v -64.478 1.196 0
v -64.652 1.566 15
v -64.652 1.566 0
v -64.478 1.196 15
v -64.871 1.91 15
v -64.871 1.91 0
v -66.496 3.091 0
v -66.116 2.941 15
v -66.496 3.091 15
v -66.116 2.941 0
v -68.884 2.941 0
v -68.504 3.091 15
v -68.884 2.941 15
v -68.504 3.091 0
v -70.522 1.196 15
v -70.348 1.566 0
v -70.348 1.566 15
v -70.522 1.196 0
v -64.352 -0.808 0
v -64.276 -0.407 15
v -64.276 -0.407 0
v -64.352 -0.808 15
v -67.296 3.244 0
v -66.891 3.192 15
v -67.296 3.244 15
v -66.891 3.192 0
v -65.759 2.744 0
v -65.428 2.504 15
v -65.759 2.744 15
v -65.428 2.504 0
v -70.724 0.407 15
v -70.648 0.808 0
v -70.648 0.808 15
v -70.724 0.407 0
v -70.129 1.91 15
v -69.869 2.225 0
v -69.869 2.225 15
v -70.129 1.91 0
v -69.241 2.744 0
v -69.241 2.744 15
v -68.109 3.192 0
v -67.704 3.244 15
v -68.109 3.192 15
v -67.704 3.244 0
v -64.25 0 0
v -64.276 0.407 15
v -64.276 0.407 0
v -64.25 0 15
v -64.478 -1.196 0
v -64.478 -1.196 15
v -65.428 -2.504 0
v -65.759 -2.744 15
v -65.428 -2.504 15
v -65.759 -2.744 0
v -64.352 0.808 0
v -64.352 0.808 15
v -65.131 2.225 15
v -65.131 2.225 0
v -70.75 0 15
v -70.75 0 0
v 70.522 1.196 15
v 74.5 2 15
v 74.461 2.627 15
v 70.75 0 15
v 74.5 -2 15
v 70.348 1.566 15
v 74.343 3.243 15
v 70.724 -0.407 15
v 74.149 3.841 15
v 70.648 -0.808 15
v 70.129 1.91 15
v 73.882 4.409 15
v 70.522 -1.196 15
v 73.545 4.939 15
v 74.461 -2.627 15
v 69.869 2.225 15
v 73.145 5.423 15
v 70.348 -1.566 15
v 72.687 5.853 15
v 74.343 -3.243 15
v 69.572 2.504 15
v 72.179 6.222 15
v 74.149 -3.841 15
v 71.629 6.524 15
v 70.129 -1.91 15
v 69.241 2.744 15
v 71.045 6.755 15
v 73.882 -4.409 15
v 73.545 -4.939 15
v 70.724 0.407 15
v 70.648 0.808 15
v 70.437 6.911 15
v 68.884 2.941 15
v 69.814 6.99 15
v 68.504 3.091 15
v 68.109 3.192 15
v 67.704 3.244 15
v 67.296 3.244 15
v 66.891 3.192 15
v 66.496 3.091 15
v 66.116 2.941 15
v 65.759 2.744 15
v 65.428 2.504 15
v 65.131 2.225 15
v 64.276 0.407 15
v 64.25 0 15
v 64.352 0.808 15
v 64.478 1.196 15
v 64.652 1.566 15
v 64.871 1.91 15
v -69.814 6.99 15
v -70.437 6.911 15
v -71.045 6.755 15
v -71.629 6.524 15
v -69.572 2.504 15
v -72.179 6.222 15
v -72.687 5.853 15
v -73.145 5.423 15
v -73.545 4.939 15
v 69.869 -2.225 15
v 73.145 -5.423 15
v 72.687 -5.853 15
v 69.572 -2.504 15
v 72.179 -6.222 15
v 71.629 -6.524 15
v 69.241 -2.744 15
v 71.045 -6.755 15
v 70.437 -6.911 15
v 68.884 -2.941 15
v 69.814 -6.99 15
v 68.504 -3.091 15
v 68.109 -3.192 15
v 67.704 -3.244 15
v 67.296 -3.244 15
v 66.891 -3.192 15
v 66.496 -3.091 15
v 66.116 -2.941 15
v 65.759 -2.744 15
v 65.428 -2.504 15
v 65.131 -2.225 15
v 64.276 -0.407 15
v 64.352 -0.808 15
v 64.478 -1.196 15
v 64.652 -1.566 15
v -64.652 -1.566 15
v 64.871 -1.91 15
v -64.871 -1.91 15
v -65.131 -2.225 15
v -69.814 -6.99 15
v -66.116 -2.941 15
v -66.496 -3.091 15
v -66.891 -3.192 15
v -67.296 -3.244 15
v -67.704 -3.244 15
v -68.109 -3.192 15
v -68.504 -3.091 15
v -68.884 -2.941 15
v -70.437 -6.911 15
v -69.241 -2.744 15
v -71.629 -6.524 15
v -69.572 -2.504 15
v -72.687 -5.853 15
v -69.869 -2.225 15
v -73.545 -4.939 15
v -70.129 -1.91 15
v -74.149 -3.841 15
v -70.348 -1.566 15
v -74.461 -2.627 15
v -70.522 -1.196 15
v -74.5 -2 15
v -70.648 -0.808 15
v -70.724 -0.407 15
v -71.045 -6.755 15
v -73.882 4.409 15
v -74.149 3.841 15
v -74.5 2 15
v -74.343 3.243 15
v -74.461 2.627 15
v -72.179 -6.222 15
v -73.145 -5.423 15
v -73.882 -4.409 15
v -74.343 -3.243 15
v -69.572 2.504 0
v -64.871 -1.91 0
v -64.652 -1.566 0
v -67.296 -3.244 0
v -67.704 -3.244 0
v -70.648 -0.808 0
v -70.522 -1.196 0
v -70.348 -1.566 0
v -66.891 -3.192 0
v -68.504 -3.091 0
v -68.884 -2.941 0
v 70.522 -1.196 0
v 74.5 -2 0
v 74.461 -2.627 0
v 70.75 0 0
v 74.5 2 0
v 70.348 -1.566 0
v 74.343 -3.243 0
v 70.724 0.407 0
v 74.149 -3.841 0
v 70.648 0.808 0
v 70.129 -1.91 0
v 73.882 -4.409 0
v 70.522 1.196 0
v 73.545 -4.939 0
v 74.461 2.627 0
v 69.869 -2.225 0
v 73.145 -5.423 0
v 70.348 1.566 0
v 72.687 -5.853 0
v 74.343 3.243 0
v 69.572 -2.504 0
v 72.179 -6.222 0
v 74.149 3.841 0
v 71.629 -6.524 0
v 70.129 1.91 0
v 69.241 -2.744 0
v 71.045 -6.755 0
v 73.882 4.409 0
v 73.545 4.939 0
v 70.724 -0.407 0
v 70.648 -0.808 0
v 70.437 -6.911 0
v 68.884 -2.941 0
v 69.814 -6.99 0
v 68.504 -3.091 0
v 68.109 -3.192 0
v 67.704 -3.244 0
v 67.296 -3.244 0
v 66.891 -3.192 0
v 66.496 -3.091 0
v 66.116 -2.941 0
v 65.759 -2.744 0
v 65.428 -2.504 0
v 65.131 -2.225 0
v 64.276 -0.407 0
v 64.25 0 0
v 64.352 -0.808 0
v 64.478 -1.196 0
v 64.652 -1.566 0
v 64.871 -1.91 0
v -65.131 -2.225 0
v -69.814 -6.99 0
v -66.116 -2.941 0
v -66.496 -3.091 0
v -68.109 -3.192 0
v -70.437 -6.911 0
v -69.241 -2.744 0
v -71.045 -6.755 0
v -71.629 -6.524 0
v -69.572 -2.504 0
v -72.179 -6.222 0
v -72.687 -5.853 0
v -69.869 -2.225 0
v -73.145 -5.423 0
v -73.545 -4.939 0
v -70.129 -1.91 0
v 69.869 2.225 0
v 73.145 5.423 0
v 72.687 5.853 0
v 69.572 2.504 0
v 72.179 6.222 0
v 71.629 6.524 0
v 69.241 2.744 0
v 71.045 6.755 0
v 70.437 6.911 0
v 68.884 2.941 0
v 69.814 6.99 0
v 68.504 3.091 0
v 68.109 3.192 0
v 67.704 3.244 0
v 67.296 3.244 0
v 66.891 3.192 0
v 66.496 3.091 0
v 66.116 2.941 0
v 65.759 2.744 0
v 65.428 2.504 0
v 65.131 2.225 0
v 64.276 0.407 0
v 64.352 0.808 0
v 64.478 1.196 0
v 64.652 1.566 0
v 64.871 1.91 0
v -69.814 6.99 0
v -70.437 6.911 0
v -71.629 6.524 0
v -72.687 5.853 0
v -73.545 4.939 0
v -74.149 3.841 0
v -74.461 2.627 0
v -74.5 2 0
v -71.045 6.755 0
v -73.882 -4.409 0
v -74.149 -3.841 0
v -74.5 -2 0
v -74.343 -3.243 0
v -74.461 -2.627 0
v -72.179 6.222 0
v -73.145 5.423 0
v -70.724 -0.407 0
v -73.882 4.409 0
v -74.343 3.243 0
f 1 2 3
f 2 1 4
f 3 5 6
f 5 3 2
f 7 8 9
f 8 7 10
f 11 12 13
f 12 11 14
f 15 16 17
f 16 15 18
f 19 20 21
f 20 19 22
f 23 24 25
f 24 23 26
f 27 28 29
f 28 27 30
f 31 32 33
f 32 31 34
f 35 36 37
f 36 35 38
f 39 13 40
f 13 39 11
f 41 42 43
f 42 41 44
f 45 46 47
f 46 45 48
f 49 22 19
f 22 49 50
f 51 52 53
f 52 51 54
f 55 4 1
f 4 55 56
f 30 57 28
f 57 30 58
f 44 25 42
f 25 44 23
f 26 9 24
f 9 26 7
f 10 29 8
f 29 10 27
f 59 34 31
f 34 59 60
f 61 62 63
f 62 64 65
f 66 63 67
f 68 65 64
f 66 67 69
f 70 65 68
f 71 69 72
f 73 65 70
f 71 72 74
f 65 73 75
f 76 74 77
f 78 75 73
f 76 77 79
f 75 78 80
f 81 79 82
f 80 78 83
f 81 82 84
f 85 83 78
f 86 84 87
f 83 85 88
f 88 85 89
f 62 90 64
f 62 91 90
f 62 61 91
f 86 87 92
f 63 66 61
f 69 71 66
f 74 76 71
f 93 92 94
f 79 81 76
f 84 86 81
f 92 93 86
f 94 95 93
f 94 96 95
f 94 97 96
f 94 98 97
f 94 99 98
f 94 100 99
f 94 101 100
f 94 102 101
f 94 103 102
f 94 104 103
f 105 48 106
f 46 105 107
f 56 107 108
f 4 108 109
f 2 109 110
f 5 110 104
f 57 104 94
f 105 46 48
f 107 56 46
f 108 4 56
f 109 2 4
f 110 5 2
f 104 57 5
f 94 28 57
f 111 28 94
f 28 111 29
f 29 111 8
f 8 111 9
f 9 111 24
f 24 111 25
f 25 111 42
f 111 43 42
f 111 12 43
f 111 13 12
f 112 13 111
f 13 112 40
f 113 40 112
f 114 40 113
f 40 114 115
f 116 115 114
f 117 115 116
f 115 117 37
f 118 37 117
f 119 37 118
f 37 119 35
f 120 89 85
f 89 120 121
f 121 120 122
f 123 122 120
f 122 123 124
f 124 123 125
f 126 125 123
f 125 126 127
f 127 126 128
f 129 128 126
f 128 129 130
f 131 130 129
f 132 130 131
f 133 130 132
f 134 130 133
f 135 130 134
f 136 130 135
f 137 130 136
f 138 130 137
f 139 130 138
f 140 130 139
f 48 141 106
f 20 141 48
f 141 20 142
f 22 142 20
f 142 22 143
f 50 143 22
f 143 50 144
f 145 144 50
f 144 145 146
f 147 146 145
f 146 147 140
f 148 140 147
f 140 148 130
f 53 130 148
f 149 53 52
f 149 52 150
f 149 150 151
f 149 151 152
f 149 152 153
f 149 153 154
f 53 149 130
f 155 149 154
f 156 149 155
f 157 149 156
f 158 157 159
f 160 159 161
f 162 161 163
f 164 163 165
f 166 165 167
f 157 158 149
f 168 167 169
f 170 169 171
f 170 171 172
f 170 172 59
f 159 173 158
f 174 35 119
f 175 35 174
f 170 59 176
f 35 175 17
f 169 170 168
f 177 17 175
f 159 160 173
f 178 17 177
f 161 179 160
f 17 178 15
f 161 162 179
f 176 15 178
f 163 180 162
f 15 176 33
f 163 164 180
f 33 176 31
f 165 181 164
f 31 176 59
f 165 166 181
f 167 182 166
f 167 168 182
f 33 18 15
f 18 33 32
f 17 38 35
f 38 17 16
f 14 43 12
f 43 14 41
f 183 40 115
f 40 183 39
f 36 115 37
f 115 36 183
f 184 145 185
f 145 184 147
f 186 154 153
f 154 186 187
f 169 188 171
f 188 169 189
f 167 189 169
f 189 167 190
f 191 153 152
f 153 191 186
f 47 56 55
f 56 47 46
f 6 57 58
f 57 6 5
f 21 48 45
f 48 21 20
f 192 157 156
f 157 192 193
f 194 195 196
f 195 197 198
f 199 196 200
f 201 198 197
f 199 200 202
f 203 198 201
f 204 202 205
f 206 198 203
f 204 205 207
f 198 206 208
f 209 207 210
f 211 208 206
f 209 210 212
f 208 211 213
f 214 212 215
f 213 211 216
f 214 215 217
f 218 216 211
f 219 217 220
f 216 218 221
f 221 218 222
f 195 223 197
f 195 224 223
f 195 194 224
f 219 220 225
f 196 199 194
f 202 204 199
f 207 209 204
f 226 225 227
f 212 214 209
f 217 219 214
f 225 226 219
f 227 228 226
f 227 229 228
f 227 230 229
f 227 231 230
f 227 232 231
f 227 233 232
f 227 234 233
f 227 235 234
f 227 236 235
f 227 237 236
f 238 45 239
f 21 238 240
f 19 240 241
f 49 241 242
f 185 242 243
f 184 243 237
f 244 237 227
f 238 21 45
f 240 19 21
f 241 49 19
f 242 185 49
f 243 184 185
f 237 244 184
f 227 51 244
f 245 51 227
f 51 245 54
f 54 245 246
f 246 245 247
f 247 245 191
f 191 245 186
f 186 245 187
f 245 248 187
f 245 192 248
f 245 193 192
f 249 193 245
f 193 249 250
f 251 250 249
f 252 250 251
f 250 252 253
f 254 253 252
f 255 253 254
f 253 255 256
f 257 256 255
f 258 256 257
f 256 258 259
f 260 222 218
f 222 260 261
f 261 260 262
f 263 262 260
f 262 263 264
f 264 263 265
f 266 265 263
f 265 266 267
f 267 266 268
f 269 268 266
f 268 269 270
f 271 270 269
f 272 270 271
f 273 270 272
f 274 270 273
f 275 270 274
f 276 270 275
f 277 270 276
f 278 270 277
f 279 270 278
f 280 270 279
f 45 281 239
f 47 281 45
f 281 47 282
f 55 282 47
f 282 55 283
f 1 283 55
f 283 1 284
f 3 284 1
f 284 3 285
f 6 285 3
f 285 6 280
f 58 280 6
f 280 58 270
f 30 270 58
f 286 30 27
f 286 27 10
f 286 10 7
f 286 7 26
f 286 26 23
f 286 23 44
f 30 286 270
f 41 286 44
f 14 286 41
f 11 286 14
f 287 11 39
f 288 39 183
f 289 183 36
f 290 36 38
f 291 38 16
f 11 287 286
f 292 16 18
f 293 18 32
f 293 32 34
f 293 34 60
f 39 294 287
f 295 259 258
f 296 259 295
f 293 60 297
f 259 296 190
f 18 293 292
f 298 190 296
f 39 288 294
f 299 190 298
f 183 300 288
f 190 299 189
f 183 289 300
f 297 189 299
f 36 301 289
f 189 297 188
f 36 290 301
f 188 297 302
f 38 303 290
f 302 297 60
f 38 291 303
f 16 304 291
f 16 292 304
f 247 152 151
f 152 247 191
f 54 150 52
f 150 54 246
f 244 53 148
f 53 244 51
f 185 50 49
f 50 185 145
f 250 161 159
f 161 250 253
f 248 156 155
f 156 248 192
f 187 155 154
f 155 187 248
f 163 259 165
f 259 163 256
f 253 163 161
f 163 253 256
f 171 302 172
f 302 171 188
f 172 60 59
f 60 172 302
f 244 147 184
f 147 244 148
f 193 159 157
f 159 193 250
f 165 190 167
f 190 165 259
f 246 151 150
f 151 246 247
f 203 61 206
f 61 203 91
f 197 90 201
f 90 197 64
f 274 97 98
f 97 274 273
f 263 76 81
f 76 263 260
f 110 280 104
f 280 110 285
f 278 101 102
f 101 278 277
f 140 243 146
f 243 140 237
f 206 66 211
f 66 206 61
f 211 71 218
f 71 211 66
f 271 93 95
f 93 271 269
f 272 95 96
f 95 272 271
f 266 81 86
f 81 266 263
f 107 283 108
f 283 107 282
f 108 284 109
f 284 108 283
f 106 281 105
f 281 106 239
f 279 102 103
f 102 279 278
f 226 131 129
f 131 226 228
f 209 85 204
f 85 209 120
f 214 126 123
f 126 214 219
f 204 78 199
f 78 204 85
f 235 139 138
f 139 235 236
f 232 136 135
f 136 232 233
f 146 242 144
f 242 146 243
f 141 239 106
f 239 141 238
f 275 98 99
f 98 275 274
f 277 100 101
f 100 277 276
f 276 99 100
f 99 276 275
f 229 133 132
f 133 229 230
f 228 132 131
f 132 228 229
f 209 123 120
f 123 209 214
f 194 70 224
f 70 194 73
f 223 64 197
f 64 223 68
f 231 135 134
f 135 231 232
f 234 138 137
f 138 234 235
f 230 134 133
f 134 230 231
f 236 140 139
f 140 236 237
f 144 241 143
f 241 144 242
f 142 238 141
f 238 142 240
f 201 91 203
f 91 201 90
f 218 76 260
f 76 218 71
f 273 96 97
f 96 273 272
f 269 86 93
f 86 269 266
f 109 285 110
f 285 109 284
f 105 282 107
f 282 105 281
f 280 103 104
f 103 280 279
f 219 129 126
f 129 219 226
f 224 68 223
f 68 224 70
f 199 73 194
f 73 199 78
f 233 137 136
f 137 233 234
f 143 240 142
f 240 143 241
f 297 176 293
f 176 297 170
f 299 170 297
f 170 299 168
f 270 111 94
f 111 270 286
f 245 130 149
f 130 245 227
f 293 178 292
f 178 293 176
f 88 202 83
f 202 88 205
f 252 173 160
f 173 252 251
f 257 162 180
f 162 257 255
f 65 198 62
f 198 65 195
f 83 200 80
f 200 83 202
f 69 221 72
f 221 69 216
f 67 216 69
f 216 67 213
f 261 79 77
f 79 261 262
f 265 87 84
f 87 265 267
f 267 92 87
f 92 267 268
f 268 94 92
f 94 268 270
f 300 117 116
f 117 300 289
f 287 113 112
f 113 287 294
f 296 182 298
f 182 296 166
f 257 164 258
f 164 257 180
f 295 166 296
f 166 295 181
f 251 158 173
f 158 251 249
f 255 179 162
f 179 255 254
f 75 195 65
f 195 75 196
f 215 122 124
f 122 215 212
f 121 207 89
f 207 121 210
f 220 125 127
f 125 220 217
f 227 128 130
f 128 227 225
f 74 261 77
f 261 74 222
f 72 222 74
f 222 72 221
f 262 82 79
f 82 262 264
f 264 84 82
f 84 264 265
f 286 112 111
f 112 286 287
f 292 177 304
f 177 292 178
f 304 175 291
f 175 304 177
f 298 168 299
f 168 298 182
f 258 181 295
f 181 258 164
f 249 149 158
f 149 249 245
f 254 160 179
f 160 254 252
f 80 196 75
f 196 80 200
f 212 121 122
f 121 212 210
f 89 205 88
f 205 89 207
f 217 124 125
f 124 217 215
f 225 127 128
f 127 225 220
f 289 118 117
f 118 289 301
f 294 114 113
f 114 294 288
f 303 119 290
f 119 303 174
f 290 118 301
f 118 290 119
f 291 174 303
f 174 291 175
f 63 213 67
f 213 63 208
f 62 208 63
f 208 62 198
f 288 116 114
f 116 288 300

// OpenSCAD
$fn = 50;


difference() {
	union() {
		hull() {
			translate(v = [-69.5000000000, 2.0000000000, 0]) {
				cylinder(h = 15, r = 5);
			}
			translate(v = [69.5000000000, 2.0000000000, 0]) {
				cylinder(h = 15, r = 5);
			}
			translate(v = [-69.5000000000, -2.0000000000, 0]) {
				cylinder(h = 15, r = 5);
			}
			translate(v = [69.5000000000, -2.0000000000, 0]) {
				cylinder(h = 15, r = 5);
			}
		}
	}
	union() {
		translate(v = [-67.5000000000, 0.0000000000, 0]) {
			cylinder(h = 15, r = 3.2500000000);
		}
		translate(v = [67.5000000000, 0.0000000000, 0]) {
			cylinder(h = 15, r = 3.2500000000);
		}
		translate(v = [-67.5000000000, 0.0000000000, 0]) {
			cylinder(h = 15, r = 1.8000000000);
		}
		translate(v = [67.5000000000, 0.0000000000, 0]) {
			cylinder(h = 15, r = 1.8000000000);
		}
		translate(v = [-67.5000000000, 0.0000000000, 0]) {
			cylinder(h = 15, r = 1.8000000000);
		}
		translate(v = [67.5000000000, 0.0000000000, 0]) {
			cylinder(h = 15, r = 1.8000000000);
		}
		translate(v = [-67.5000000000, 0.0000000000, 0]) {
			cylinder(h = 15, r = 1.8000000000);
		}
		translate(v = [67.5000000000, 0.0000000000, 0]) {
			cylinder(h = 15, r = 1.8000000000);
		}
	}
}
